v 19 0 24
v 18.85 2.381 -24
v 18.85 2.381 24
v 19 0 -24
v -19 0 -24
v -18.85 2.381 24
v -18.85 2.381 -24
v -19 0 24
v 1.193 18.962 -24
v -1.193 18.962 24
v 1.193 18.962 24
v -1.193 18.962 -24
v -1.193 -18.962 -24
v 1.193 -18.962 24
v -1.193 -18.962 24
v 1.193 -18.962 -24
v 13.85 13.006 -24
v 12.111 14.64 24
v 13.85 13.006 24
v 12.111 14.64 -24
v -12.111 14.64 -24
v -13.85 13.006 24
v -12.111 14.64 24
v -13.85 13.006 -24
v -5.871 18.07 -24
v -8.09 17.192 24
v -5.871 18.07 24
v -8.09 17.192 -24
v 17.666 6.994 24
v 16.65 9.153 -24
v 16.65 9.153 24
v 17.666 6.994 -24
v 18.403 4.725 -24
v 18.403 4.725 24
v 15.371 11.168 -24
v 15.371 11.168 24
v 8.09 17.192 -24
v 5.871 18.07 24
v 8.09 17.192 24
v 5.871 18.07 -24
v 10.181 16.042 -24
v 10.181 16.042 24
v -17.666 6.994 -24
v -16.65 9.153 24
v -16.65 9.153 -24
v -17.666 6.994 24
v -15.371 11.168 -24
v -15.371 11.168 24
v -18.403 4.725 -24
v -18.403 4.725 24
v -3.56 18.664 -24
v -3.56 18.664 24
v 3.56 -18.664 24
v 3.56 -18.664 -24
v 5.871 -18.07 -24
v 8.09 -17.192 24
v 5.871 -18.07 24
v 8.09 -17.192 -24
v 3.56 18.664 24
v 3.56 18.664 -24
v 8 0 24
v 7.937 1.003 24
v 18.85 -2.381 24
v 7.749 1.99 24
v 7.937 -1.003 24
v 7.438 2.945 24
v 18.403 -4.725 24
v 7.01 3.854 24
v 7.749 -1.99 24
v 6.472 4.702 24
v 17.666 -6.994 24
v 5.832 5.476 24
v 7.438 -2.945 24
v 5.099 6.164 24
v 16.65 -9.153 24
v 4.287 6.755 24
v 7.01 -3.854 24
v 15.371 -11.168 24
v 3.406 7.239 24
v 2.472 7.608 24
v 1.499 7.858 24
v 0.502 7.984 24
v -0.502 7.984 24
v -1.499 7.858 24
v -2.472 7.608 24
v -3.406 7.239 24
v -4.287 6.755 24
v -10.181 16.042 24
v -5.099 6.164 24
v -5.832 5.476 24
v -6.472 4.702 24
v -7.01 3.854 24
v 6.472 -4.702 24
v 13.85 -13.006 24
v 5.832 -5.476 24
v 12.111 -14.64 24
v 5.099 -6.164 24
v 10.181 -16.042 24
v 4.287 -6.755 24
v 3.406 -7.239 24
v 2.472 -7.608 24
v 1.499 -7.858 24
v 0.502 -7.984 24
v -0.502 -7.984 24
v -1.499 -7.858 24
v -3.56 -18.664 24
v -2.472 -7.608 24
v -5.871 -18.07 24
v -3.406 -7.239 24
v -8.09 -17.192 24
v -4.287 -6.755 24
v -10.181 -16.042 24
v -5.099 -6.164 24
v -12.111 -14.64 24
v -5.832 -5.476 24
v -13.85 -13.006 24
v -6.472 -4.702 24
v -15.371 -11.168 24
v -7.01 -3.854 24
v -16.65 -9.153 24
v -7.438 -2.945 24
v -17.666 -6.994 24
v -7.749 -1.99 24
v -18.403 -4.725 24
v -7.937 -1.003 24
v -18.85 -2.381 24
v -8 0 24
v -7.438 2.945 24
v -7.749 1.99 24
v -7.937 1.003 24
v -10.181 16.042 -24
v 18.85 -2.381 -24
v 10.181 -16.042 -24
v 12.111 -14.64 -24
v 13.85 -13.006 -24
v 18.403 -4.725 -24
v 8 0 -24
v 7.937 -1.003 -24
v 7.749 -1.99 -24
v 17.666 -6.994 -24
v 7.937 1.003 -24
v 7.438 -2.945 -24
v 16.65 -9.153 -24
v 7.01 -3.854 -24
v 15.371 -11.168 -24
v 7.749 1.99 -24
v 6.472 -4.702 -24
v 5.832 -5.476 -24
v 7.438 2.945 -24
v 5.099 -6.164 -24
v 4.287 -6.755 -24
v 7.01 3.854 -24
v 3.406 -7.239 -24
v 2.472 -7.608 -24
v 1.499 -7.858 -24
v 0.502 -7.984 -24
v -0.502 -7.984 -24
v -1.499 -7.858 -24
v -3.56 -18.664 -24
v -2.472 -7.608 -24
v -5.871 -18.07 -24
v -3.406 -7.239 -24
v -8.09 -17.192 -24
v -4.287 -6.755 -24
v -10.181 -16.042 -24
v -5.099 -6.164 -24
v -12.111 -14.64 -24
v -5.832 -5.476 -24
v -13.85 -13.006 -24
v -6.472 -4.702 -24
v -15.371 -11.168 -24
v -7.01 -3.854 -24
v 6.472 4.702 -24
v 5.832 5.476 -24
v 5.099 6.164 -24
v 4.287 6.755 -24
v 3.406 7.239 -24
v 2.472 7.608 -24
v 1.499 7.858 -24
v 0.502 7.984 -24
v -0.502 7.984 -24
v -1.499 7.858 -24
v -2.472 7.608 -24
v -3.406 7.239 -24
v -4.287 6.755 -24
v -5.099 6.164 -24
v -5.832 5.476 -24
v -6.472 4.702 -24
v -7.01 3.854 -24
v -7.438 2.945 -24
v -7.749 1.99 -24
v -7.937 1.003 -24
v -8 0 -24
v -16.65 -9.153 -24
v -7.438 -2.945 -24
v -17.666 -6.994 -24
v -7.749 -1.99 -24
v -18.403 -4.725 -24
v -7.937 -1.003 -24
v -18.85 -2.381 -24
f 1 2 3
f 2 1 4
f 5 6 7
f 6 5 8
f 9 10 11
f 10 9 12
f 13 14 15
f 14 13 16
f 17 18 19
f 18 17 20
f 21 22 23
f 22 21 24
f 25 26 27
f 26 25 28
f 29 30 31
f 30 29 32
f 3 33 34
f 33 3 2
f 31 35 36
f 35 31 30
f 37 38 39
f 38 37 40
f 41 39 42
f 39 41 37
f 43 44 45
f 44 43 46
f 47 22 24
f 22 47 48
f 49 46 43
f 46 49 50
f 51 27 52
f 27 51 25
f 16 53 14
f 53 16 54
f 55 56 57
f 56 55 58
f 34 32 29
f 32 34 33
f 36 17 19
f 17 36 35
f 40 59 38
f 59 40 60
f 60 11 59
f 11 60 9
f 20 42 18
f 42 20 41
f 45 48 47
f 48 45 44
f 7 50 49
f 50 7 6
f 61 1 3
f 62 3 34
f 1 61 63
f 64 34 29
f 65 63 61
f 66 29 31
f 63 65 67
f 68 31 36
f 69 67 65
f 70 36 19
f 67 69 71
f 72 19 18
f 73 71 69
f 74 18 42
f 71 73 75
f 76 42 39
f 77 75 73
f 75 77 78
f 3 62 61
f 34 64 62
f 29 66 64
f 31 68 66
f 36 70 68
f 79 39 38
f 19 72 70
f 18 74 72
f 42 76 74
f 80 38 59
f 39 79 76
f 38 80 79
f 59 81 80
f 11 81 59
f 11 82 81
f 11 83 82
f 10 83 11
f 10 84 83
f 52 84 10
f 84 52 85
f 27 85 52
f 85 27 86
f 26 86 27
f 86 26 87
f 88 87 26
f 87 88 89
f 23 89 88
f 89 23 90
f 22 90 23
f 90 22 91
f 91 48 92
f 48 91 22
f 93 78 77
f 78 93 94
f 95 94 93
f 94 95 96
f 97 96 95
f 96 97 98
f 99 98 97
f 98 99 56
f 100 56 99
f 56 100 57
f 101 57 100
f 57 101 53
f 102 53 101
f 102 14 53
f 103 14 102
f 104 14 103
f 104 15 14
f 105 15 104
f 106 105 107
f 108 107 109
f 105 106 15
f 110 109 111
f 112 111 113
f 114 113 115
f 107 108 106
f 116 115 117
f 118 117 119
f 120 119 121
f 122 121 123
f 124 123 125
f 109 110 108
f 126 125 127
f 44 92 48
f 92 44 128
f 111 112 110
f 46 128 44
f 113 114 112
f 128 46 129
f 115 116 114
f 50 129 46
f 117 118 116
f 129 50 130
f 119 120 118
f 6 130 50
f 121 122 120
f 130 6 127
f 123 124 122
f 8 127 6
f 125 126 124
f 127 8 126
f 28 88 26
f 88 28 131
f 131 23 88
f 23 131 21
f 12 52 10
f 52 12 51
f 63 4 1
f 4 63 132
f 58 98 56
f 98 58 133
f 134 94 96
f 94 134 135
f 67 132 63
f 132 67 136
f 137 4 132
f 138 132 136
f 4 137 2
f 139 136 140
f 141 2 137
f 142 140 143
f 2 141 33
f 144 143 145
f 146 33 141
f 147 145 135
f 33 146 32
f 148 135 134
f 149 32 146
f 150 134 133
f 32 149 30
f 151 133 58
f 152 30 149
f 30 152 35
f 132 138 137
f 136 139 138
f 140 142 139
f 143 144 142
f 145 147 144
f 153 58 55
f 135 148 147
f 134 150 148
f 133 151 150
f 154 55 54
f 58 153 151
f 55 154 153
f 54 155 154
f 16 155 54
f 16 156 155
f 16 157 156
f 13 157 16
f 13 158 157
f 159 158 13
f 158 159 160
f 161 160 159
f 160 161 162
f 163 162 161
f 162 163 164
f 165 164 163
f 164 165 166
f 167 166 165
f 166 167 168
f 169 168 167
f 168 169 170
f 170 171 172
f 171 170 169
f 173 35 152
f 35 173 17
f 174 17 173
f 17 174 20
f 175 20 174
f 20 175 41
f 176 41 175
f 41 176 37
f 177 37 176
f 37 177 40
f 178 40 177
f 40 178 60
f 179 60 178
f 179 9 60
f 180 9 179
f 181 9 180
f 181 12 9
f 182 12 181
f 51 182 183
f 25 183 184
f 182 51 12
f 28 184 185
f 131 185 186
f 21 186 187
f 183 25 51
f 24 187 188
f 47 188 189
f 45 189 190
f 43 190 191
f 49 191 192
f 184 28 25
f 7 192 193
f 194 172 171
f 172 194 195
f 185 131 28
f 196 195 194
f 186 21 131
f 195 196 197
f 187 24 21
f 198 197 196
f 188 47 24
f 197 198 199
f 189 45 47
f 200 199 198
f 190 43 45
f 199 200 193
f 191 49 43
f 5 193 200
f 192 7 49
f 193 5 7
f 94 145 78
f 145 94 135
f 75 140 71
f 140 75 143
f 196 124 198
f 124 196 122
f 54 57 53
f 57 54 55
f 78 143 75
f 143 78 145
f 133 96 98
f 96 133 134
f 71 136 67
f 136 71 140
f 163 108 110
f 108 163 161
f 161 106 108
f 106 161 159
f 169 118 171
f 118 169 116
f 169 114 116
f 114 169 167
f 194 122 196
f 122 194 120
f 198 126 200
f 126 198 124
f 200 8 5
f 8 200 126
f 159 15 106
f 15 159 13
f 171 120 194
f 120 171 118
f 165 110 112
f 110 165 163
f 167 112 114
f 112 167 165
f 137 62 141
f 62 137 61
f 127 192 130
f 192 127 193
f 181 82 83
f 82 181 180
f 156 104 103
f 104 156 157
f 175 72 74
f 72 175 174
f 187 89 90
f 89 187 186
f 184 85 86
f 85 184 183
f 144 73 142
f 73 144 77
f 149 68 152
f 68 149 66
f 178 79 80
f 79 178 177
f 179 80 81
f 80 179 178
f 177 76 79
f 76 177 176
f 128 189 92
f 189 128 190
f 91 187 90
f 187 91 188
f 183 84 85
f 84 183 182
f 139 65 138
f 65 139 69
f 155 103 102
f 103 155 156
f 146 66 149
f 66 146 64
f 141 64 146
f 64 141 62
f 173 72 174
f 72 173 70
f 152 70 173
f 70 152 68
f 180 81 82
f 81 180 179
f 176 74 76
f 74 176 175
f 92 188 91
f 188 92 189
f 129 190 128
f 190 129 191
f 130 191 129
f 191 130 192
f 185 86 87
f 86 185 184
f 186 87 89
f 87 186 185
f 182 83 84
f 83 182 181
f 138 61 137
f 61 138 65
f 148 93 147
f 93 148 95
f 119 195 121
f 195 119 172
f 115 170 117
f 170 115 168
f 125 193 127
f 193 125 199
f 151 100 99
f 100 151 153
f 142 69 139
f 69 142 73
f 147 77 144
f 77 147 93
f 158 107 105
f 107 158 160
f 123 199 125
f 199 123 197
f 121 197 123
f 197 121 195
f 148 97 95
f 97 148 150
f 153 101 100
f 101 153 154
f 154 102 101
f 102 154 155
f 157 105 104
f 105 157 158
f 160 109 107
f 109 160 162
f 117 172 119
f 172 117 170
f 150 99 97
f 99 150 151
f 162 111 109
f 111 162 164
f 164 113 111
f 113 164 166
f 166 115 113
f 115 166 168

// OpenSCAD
$fn = 50;


difference() {
	union() {
		translate(v = [0, 0, -24.0000000000]) {
			cylinder(h = 48, r = 19.0000000000);
		}
	}
	union() {
		translate(v = [0, 0, -100.0000000000]) {
			cylinder(h = 200, r = 8);
		}
	}
}
